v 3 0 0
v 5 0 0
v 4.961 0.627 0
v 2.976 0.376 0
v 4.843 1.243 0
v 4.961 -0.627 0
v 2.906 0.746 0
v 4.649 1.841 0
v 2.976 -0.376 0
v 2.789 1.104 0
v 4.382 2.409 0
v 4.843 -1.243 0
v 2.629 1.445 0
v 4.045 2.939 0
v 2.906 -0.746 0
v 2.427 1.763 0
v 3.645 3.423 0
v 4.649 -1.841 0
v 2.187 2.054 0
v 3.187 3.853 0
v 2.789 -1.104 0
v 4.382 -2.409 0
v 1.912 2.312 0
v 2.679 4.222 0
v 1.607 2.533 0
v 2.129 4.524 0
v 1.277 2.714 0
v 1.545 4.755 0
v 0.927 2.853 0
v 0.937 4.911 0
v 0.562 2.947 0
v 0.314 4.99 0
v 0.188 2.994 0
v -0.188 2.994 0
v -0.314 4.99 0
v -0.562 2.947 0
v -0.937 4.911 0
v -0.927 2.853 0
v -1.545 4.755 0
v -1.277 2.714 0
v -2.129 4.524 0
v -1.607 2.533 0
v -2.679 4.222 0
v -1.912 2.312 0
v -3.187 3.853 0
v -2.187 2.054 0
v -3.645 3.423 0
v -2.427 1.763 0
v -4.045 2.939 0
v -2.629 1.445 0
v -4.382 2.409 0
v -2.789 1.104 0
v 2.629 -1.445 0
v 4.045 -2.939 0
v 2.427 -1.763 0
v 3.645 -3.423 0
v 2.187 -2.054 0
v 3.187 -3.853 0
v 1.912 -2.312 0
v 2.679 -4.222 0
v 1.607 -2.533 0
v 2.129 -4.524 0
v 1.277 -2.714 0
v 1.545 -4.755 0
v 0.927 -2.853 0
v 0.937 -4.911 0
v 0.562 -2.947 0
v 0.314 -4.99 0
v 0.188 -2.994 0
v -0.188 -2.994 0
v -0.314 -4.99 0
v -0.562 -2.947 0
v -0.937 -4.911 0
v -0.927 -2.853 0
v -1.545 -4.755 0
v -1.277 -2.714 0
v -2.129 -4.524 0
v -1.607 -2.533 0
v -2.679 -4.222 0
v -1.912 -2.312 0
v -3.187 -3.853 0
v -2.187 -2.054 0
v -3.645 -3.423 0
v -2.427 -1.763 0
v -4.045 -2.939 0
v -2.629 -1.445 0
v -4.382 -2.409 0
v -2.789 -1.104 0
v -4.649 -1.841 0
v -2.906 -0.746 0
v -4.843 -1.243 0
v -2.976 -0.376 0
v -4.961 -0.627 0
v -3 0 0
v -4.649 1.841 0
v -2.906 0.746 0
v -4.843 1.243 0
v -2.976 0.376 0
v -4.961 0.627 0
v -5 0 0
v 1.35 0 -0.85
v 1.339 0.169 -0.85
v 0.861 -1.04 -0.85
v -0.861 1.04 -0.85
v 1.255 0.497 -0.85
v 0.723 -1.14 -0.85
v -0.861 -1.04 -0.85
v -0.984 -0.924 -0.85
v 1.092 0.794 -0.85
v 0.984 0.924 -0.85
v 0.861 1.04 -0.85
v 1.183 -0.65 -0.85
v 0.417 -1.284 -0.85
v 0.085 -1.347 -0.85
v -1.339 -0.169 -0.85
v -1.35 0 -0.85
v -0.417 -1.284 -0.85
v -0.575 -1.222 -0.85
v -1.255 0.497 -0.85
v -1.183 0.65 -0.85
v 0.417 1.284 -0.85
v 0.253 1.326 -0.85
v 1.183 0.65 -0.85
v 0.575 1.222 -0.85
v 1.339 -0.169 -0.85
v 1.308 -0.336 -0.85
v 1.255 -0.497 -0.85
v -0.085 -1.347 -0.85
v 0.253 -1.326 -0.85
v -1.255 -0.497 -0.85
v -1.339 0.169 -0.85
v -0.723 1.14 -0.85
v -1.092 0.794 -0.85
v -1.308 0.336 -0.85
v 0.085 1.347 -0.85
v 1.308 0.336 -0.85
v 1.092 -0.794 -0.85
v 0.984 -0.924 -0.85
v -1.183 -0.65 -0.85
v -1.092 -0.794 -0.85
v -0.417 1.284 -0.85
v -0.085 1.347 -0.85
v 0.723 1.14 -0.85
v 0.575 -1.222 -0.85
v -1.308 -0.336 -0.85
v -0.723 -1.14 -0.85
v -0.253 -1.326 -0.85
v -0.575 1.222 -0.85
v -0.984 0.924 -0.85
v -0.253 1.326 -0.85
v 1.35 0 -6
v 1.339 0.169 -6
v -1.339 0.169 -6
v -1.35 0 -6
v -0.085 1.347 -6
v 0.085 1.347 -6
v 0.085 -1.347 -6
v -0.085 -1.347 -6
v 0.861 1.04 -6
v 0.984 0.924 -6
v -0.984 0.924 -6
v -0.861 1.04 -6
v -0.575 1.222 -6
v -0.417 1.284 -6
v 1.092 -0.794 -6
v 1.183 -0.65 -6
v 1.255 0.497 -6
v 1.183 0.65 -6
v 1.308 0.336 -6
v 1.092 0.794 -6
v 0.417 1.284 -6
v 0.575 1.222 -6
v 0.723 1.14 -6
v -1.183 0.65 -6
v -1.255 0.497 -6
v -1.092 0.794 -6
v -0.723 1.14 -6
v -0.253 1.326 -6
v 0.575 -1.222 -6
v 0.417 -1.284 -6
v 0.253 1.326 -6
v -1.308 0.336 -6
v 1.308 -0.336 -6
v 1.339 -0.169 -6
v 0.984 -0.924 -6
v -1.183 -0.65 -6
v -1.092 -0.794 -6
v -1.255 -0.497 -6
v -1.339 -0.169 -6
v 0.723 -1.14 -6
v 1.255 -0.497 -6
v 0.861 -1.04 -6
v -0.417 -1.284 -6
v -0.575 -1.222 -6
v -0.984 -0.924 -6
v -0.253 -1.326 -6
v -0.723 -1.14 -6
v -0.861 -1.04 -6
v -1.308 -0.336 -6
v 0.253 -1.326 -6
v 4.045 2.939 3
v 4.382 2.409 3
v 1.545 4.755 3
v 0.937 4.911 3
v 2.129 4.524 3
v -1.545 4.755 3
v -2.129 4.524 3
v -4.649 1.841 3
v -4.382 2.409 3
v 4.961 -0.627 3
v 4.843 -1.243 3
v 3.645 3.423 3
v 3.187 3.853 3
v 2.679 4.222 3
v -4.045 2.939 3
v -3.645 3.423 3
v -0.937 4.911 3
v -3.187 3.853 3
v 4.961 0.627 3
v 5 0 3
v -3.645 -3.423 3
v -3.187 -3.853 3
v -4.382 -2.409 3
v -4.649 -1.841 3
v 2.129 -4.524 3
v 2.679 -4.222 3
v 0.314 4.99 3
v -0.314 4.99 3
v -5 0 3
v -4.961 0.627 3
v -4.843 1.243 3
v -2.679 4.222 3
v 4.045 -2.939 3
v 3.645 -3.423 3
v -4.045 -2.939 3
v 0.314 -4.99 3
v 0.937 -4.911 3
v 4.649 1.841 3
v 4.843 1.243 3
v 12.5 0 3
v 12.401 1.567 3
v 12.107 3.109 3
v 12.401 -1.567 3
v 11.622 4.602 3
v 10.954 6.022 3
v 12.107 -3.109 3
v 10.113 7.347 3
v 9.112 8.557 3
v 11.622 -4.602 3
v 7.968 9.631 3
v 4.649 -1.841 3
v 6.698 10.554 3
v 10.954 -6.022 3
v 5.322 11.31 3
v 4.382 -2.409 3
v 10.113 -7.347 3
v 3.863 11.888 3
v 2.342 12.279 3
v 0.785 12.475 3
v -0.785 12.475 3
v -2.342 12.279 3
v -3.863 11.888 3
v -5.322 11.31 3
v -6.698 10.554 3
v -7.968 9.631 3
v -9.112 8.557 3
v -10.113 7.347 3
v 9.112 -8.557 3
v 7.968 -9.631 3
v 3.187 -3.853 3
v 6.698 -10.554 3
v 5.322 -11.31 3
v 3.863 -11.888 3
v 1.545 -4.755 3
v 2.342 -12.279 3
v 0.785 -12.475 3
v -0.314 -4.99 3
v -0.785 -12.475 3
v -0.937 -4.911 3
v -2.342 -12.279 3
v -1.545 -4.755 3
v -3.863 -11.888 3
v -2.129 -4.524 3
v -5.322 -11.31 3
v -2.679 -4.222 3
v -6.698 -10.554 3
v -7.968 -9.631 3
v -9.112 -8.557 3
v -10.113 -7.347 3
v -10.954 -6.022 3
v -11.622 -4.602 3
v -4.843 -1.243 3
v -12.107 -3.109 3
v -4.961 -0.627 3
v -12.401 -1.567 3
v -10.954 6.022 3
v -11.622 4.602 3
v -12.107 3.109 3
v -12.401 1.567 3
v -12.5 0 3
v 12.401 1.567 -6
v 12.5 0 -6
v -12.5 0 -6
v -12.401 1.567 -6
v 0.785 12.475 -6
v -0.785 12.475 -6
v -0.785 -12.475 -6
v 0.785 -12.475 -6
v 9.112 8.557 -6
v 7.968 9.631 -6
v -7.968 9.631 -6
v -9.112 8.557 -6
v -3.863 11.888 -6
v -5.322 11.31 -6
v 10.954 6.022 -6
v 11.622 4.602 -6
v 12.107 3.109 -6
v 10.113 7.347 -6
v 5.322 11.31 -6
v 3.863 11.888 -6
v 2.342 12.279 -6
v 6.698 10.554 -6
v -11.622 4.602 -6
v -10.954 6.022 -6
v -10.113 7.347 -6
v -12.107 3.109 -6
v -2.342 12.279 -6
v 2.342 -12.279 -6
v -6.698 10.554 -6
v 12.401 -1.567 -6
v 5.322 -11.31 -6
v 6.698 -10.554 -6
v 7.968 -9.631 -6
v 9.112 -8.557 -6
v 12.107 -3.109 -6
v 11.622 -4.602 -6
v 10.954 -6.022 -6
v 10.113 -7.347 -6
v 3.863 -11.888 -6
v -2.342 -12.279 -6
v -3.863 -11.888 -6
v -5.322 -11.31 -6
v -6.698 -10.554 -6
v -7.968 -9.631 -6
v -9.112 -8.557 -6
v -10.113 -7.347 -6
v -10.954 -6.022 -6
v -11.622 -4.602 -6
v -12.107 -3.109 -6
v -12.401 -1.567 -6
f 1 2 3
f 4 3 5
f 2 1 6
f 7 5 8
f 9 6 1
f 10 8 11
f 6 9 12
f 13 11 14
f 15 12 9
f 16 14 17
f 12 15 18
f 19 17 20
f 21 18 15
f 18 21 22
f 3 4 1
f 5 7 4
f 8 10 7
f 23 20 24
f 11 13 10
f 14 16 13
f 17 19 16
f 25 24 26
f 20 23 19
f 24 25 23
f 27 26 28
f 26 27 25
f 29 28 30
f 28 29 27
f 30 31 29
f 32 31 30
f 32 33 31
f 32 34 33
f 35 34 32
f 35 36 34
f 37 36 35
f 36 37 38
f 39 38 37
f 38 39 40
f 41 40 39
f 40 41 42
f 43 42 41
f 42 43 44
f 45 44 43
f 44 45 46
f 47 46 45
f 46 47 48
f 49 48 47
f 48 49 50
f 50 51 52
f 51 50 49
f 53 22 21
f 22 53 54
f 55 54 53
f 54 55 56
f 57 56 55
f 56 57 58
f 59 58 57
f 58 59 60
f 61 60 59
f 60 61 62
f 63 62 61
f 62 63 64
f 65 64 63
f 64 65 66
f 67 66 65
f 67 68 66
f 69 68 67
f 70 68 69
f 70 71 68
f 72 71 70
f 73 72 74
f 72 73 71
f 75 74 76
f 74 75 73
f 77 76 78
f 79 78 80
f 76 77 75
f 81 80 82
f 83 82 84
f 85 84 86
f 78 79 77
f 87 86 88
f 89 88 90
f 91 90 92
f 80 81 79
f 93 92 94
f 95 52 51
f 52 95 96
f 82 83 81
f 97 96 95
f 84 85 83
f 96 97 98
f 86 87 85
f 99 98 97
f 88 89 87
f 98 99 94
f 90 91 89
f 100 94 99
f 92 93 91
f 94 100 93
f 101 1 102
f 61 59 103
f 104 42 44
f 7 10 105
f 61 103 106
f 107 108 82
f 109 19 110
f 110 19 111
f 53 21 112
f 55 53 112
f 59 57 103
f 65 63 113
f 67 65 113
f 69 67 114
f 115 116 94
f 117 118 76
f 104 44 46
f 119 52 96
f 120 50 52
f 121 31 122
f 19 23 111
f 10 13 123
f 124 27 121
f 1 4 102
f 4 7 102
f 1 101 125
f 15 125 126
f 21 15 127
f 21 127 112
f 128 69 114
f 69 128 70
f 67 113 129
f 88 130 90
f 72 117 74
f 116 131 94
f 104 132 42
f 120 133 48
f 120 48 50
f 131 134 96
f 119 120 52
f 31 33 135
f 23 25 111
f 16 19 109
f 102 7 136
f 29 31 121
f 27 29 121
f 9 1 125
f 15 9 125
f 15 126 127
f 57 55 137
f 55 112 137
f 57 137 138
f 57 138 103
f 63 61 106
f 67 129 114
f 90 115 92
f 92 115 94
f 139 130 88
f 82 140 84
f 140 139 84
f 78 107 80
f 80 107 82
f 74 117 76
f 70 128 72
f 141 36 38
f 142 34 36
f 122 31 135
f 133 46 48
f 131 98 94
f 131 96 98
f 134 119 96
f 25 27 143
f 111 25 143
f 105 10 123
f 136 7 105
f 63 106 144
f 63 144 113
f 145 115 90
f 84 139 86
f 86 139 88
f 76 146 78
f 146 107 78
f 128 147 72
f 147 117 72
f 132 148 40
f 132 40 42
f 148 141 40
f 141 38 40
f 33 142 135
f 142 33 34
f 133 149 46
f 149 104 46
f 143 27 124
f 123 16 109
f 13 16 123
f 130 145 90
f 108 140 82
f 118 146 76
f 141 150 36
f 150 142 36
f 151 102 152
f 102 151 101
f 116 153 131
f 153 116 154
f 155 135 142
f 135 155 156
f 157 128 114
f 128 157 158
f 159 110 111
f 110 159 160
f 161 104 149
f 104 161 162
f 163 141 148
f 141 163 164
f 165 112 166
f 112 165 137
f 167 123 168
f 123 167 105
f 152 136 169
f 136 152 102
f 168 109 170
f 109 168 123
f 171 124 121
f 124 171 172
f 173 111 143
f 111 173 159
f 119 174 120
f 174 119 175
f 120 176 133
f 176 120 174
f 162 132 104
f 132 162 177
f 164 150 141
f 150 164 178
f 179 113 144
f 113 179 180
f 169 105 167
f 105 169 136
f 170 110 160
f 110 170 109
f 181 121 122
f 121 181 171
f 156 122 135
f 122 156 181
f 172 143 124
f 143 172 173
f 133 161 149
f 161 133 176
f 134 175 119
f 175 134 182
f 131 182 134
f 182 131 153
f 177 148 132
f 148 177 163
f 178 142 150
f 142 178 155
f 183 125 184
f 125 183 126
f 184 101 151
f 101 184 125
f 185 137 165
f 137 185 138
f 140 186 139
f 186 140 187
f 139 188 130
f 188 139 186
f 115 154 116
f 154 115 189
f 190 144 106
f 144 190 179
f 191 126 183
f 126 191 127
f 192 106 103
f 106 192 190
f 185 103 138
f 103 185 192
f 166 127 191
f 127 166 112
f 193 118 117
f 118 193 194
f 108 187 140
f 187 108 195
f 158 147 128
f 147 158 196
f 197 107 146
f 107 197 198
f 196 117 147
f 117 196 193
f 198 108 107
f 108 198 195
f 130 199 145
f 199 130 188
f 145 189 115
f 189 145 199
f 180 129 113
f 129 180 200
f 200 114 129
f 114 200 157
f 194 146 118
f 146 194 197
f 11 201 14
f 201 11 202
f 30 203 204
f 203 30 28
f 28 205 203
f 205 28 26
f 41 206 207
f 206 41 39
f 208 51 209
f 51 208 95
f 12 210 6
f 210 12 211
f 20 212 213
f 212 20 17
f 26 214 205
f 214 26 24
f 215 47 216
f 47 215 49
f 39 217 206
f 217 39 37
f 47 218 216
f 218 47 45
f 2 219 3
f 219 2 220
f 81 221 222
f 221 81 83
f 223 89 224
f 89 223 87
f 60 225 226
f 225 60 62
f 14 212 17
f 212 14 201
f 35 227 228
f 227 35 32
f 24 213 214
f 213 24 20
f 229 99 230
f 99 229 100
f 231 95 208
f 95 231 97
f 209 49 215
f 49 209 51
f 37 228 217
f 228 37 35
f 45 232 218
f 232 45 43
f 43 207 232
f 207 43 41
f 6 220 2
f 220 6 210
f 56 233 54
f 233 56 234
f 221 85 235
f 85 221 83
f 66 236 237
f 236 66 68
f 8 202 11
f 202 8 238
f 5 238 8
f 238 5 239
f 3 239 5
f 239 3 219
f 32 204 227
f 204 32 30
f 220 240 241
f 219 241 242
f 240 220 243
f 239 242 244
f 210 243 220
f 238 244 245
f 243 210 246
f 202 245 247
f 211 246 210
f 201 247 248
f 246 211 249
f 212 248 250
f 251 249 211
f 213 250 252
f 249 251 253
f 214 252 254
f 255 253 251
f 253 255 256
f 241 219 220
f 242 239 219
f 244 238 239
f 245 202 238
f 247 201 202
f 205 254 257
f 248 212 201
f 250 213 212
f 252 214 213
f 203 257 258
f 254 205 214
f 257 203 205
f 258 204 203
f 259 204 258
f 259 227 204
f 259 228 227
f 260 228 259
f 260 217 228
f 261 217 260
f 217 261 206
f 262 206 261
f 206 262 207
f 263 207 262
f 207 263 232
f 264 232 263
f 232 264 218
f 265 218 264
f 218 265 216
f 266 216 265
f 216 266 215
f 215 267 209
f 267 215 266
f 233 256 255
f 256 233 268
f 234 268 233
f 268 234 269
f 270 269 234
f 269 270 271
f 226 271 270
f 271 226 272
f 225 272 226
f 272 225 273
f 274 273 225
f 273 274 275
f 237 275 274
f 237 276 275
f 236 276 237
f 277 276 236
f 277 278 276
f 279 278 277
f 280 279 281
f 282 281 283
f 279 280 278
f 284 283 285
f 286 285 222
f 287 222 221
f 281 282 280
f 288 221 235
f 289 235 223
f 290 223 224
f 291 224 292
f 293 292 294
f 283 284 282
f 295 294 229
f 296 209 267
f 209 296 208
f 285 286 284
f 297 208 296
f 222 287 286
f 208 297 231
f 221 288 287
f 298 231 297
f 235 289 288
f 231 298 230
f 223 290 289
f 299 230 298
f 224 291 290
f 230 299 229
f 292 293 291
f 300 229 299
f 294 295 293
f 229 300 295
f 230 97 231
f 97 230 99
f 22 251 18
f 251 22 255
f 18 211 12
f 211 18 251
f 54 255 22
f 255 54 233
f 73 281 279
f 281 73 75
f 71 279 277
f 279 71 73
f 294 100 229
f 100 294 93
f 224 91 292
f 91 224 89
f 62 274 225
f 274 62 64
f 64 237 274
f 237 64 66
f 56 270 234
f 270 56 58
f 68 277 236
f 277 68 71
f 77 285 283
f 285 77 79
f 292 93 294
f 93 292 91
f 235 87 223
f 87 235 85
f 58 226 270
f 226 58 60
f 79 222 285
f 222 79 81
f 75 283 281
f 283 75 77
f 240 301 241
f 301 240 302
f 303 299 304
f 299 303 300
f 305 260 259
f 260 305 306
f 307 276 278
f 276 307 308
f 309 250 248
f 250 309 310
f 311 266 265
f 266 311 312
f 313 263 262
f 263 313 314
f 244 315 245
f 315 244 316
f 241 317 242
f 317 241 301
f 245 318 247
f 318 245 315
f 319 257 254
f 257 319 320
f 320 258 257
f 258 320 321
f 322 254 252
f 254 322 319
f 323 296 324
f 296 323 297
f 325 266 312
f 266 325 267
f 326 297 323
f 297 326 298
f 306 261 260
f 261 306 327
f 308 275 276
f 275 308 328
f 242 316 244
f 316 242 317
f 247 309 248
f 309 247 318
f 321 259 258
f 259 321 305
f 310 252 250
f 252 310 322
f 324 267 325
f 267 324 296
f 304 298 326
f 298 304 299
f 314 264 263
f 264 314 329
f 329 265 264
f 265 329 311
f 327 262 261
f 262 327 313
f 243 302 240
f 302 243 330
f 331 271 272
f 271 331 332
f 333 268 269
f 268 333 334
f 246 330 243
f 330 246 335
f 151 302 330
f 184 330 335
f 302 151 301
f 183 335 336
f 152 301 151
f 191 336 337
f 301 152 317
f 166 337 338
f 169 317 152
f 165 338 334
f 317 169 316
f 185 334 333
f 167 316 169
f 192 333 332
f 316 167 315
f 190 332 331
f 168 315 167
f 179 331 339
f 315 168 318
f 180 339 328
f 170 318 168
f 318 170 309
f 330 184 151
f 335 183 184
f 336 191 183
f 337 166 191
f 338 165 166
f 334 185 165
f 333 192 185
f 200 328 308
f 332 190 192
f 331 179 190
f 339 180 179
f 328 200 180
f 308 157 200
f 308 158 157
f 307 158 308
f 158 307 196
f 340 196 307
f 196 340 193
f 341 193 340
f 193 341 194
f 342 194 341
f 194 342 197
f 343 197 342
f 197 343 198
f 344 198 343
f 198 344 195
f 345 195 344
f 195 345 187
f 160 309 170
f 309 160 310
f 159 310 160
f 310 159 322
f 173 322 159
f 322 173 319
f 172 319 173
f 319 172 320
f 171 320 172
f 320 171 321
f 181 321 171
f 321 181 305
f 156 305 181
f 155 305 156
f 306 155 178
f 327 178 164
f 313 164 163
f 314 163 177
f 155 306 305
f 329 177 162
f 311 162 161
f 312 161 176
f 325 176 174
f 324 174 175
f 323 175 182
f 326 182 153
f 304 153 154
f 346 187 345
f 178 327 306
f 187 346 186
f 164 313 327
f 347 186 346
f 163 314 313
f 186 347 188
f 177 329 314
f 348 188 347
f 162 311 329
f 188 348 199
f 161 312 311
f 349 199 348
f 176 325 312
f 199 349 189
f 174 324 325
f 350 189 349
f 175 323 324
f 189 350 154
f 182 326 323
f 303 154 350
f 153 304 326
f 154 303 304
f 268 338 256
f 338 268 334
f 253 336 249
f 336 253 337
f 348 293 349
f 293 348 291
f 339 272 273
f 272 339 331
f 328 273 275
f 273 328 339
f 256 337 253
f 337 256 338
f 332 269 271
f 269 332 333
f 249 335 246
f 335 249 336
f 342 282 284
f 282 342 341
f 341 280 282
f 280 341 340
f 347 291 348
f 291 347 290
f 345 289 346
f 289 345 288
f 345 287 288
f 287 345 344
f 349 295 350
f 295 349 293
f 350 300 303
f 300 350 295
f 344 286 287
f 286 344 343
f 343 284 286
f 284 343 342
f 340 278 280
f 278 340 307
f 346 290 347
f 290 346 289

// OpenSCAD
$fn = 50;


difference() {
	union() {
		translate(v = [0, 0, -6.0000000000]) {
			cylinder(h = 9, r = 12.5000000000);
		}
	}
	union() {
		translate(v = [0, 0, 0]) {
			rotate(a = [0, 0, 0]) {
				difference() {
					union() {
						translate(v = [0, 0, -9.0000000000]) {
							cylinder(h = 9, r = 1.0000000000);
						}
						translate(v = [0, 0, -0.8500000000]) {
							cylinder(h = 0.8500000000, r1 = 1.3500000000, r2 = 3.0000000000);
						}
						translate(v = [0, 0, -9.0000000000]) {
							cylinder(h = 9, r = 1.3500000000);
						}
						translate(v = [0, 0, -9.0000000000]) {
							cylinder(h = 9, r = 1.0000000000);
						}
					}
					union();
				}
			}
		}
		#cylinder(h = 3, r = 5.0000000000);
	}
}
